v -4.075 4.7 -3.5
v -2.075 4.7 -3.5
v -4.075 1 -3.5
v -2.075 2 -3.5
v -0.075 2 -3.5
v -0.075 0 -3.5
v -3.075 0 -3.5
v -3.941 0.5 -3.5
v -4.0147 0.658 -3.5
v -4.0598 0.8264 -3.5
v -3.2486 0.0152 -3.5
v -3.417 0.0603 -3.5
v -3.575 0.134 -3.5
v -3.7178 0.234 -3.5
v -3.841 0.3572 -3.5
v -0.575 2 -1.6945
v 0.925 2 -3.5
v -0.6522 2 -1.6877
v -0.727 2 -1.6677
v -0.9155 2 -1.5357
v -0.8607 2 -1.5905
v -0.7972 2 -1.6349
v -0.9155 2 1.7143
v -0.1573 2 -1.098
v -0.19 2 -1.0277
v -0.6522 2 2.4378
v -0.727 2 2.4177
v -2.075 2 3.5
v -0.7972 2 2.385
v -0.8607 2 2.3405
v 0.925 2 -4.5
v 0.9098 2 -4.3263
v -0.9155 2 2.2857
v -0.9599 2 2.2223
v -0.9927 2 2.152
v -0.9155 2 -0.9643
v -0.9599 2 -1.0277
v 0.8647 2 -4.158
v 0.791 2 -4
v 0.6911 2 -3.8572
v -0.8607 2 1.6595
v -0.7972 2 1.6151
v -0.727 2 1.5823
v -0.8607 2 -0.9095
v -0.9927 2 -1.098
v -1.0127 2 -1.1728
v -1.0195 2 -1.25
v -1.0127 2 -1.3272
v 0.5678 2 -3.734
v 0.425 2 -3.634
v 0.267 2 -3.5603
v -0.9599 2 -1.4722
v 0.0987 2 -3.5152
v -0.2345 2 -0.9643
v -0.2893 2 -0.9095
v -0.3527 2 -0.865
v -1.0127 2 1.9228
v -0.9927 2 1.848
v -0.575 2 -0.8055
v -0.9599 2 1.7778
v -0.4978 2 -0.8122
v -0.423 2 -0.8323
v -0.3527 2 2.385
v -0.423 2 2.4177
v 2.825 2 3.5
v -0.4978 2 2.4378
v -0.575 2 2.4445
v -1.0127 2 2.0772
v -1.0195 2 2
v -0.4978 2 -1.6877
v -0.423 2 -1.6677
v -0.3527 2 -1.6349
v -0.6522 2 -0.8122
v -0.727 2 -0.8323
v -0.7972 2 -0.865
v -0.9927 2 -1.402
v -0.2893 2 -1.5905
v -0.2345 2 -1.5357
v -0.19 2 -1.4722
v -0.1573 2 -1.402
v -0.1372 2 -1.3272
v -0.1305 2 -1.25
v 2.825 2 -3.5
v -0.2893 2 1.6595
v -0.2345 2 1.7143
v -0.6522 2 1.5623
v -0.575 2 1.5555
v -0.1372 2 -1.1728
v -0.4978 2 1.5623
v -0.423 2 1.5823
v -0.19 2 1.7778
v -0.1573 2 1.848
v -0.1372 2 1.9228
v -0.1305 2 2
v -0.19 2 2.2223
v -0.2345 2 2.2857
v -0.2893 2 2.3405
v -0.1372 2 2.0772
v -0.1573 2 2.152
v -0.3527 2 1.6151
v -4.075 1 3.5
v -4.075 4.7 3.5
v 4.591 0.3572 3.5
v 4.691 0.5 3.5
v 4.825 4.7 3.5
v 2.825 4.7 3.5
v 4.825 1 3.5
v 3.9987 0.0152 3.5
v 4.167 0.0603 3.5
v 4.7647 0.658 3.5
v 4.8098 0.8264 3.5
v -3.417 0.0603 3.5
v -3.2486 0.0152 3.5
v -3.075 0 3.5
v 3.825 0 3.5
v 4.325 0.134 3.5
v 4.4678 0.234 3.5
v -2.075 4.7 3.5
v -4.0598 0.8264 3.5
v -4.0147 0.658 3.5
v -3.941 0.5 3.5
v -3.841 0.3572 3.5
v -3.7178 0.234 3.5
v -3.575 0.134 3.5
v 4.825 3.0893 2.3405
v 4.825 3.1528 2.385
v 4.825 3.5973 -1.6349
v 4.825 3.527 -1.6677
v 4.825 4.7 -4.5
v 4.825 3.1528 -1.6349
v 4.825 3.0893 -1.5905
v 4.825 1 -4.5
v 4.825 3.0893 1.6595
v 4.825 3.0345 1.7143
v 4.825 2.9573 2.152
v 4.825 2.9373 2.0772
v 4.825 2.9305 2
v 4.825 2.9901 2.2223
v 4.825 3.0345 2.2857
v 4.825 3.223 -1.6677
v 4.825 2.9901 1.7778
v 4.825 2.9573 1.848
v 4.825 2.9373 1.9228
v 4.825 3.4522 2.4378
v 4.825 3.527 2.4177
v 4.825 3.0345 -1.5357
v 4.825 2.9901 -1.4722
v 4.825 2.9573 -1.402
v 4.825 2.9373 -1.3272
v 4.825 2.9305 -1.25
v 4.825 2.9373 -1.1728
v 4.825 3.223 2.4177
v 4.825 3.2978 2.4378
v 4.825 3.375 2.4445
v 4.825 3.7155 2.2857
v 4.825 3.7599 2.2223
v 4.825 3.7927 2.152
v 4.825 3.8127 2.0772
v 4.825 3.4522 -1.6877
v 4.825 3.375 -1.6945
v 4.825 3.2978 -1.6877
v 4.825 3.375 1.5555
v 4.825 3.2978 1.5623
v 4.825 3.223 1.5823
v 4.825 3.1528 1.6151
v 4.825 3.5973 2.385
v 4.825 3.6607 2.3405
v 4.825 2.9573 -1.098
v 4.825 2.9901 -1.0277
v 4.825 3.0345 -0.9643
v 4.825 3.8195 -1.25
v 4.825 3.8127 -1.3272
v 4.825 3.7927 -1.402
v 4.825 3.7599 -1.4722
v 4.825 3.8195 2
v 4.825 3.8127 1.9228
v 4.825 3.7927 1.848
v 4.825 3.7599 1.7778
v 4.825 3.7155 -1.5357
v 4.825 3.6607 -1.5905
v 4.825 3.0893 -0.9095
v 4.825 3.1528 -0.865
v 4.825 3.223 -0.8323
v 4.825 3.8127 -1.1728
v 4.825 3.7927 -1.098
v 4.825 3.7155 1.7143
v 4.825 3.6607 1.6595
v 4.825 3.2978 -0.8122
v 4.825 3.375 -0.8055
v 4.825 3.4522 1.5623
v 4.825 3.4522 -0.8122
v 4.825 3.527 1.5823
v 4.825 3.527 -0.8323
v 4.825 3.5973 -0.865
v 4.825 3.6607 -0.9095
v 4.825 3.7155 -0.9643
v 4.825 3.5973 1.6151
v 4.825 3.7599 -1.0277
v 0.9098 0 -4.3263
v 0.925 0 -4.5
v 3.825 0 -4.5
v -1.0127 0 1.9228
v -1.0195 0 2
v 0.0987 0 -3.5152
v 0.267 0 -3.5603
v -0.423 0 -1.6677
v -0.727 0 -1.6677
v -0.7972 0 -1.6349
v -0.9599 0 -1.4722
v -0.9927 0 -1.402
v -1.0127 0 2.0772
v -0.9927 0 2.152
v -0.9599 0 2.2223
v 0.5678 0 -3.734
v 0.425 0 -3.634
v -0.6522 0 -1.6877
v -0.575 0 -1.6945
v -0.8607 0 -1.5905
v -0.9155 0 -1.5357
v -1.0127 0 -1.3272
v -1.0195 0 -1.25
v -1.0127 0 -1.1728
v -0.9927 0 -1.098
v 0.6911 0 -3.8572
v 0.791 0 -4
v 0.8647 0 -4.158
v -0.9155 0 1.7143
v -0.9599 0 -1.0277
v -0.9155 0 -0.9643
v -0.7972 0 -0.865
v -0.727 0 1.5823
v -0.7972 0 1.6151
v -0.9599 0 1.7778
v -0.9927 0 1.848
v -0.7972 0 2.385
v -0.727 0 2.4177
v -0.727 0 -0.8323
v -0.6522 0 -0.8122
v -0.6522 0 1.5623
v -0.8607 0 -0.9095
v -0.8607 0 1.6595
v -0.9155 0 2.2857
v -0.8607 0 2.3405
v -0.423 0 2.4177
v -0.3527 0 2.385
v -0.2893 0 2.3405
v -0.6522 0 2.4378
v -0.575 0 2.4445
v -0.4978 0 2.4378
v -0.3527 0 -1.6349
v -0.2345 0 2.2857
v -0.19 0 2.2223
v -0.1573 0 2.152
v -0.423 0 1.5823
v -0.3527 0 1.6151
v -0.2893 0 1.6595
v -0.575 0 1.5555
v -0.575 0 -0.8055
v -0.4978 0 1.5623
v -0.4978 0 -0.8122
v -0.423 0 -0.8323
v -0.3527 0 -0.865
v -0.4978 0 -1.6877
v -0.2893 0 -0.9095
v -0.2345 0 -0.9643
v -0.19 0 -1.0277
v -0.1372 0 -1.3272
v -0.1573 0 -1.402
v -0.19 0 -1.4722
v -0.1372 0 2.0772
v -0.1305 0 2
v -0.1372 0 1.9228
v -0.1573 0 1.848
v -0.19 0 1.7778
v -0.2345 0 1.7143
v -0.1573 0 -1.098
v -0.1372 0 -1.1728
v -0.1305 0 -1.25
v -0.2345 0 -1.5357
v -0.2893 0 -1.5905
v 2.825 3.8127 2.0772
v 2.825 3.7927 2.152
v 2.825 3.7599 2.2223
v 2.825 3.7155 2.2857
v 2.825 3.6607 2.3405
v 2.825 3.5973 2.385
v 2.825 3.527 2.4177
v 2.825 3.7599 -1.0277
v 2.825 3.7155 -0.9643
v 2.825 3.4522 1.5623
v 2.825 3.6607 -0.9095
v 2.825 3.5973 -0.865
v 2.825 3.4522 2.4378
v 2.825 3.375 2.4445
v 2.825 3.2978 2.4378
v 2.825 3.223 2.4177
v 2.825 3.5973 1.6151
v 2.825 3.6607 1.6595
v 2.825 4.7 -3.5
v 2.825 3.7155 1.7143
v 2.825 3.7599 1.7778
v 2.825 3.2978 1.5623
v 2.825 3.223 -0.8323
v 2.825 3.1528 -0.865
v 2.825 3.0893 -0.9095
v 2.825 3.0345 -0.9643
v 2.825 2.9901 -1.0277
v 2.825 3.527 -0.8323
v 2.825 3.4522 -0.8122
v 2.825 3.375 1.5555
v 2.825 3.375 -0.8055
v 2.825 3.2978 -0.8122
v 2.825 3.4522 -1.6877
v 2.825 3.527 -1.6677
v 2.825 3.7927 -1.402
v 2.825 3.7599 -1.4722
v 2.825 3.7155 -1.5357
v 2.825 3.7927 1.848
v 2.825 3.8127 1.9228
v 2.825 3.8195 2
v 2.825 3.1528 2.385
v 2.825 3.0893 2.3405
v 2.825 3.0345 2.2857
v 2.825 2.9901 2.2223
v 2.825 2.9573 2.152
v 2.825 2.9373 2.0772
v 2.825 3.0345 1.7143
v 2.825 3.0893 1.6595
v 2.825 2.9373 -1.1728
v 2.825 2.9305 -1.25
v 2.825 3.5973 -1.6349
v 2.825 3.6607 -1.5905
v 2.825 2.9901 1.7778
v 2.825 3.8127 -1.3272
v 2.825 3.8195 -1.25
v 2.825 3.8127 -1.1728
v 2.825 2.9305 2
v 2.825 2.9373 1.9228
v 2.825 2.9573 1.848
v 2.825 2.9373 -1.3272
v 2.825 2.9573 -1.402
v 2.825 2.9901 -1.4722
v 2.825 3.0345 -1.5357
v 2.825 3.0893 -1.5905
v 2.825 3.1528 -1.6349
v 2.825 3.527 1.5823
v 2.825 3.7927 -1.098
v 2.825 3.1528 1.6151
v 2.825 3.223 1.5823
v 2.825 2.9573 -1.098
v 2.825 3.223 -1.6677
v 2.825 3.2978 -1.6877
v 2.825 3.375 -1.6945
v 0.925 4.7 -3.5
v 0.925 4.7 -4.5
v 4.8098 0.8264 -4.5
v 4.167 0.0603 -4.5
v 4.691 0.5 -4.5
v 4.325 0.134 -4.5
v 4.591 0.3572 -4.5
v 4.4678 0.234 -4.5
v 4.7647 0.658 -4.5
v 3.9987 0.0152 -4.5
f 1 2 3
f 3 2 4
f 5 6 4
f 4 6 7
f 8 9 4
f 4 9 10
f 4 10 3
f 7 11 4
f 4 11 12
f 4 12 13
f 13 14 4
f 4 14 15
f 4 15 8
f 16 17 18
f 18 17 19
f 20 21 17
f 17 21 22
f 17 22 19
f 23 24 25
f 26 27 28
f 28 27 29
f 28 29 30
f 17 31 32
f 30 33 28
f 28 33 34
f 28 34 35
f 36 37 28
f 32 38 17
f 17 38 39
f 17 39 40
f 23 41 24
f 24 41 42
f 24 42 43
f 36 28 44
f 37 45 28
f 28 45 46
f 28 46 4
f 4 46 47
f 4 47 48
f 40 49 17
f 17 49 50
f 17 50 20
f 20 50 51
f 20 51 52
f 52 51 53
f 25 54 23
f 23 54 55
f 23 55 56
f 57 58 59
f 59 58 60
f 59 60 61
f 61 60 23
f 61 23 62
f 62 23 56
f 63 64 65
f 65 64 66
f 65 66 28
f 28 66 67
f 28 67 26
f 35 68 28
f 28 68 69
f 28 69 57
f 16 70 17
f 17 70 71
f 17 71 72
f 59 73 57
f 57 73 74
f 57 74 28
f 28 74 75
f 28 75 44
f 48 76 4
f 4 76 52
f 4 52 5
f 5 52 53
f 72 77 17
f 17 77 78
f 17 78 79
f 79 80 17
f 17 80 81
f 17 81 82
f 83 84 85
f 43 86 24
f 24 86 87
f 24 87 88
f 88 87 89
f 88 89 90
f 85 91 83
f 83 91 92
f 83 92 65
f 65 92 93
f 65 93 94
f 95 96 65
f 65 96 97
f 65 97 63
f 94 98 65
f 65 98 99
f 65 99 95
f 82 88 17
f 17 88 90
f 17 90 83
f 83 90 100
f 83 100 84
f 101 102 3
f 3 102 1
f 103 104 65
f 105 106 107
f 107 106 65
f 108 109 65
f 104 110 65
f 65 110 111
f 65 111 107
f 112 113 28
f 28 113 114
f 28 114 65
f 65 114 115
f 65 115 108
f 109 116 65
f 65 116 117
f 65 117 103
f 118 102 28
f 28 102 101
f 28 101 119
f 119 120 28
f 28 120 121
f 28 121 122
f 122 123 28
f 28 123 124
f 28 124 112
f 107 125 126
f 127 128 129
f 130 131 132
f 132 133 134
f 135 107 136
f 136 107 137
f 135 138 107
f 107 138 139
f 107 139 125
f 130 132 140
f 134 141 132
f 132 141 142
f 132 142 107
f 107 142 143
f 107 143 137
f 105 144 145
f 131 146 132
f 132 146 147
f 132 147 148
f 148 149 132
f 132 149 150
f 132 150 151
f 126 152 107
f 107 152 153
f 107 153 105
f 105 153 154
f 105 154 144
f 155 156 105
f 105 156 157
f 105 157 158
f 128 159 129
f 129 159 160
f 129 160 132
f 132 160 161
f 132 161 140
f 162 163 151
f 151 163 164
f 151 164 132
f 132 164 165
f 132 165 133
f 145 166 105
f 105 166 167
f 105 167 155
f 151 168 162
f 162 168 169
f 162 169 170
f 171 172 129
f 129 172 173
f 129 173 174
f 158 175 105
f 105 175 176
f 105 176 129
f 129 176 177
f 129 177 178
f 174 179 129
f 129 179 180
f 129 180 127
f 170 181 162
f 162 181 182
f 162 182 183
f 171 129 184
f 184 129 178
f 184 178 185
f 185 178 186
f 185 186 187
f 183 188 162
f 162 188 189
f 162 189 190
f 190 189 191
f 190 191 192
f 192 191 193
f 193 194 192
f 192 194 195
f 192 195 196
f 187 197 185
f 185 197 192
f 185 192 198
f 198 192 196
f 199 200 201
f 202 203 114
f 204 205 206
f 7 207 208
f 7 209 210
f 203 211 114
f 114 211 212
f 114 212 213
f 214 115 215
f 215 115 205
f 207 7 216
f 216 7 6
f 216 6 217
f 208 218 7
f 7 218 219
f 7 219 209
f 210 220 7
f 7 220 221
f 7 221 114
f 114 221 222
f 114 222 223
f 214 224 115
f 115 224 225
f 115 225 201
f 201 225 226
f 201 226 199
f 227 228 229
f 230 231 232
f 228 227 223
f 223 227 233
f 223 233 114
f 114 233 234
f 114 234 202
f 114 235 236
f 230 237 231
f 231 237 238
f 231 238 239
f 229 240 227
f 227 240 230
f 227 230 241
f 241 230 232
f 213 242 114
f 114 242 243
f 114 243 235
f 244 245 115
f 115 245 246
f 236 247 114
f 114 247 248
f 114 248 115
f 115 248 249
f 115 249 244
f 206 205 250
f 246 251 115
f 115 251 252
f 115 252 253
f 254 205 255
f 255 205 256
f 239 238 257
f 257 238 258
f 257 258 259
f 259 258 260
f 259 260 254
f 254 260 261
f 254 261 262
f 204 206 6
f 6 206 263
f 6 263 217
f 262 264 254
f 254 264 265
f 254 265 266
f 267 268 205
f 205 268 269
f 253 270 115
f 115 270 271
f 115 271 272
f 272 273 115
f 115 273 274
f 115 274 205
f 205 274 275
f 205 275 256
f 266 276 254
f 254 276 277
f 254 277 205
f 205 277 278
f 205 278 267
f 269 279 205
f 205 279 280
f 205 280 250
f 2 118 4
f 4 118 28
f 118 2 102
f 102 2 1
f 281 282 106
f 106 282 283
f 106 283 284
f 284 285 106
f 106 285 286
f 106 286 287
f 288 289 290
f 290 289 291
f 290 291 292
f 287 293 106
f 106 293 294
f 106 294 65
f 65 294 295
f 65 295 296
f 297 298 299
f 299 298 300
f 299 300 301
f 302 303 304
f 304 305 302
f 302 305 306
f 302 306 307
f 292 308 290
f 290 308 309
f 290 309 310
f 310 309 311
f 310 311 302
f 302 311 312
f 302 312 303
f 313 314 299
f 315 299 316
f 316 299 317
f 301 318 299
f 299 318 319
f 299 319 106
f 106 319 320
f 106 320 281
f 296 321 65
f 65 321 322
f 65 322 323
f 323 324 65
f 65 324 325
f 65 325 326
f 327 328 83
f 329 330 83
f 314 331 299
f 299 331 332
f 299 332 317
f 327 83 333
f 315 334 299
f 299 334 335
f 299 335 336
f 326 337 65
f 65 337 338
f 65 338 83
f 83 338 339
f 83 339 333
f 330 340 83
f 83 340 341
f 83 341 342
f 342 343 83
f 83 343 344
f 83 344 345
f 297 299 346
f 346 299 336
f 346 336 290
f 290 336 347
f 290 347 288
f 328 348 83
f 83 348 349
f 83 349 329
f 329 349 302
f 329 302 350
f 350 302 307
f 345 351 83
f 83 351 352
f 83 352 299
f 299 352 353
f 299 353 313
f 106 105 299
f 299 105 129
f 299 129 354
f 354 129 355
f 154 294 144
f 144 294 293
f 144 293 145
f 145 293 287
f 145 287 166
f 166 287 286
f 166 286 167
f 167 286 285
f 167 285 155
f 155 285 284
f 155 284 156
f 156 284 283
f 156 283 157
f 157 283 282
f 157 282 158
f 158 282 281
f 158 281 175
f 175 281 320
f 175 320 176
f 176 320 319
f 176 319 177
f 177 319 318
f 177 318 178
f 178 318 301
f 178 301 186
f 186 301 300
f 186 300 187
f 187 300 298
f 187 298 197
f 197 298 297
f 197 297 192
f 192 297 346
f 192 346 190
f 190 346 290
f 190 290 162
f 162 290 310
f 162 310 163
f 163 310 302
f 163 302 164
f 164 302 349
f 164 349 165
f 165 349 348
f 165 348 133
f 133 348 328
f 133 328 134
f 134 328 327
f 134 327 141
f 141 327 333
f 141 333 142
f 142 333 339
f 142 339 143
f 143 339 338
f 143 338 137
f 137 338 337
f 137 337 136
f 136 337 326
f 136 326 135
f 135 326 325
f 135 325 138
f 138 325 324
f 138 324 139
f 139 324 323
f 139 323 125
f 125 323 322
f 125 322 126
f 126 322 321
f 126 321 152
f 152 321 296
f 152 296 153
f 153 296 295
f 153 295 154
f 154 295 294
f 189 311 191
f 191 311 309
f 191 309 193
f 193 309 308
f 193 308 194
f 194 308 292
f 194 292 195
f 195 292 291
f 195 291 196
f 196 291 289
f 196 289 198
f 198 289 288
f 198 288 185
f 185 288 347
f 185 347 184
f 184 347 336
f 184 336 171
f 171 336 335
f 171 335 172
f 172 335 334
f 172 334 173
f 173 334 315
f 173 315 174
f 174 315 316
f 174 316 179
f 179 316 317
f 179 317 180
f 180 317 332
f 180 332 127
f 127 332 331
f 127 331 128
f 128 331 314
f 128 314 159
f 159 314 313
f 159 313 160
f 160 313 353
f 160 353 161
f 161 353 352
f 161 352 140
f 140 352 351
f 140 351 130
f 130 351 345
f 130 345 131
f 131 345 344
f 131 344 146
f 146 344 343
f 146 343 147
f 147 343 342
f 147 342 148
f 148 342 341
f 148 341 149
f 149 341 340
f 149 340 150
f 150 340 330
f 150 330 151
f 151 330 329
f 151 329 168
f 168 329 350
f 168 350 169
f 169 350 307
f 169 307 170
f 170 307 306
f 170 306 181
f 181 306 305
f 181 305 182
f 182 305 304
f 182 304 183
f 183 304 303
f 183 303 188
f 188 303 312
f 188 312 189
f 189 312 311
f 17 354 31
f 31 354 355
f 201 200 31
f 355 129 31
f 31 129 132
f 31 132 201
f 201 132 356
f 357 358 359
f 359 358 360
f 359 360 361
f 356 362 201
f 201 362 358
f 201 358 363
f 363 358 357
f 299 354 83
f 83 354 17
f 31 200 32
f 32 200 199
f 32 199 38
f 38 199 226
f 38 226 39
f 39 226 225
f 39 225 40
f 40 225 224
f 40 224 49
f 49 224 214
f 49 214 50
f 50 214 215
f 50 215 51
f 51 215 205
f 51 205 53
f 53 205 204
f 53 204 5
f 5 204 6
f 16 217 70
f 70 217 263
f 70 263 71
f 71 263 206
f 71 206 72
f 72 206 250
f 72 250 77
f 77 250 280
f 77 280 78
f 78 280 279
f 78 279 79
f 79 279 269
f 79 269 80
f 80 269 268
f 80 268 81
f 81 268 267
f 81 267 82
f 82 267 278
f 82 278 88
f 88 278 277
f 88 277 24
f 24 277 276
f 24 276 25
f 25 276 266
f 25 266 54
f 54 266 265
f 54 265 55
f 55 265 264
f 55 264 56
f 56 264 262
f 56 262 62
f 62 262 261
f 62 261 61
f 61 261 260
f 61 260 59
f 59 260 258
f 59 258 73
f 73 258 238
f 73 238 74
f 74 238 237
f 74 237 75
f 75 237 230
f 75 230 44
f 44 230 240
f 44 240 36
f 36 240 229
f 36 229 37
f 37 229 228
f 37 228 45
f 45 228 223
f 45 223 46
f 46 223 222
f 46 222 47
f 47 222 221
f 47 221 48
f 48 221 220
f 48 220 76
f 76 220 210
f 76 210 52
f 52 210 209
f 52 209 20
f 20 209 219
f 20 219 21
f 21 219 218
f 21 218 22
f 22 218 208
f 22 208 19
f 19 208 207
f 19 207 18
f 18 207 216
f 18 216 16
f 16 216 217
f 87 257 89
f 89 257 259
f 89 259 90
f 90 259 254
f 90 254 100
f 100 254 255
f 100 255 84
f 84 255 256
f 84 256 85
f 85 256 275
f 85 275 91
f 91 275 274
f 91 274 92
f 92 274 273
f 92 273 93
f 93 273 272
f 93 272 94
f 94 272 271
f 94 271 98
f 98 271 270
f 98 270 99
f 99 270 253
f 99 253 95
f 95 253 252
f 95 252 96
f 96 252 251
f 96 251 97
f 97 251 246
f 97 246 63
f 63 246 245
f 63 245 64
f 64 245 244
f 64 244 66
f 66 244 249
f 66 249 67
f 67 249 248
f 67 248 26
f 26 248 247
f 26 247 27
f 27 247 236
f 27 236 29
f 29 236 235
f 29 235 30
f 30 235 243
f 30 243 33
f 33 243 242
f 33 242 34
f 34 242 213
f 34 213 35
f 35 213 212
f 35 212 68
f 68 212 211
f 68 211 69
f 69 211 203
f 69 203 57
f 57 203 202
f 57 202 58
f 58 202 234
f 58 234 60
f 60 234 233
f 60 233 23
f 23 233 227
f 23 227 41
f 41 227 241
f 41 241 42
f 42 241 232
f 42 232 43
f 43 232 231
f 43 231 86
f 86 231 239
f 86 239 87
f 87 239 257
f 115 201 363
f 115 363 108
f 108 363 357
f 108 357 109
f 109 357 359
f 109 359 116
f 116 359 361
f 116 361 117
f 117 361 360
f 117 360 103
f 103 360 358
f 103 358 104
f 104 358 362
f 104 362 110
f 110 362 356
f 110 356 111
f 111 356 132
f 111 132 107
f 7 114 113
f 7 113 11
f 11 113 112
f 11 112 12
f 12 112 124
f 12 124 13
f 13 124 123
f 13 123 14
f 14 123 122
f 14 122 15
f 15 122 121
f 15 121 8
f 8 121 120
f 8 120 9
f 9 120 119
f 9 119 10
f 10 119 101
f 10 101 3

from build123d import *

# Parameters (mm, degrees)
BOSS_EXTRUDE1_DEPTH = 2
SKETCH2_W           = 2
SKETCH2_H           = 7
BOSS_EXTRUDE2_DEPTH = 2.7
SKETCH3_R           = 0.4445
CUT_EXTRUDE1_DEPTH  = 10.052623929
SKETCH5_W           = 3.9
SKETCH5_H           = 4.7
BOSS_EXTRUDE3_DEPTH = 1
FILLET1_R           = 1
SKETCH6_R           = 0.4445
CUT_EXTRUDE2_DEPTH  = 9.100655838
FILLET2_R           = 1


with BuildPart() as part:
    # Sketch1 → Boss-Extrude1 (new body)
    with BuildSketch(Plane(origin=(0, 0, 0), x_dir=(1, 0, 0), z_dir=(0, 1, 0))):
        Polygon((2.075, -3.5), (2.825, -3.5), (3.825, -3.5), (4.825, -3.5), (4.825, 3.5), (3.825, 3.5), (2.825, 3.5), (2.075, 3.5), (-2.075, 3.5), (-4.075, 3.5), (-4.075, -3.5), (-2.075, -3.5), align=None)
    extrude(amount=BOSS_EXTRUDE1_DEPTH)

    # Sketch2 → Boss-Extrude2 (add)
    with BuildSketch(Plane(origin=(0, 2, 0), x_dir=(1, 0, 0), z_dir=(0, 1, 0))):
        with Locations((-3.075, 0)):
            Rectangle(SKETCH2_W, SKETCH2_H)
        with Locations((3.825, 0)):
            Rectangle(SKETCH2_W, SKETCH2_H)
    extrude(amount=BOSS_EXTRUDE2_DEPTH)

    # Sketch3 → Cut-Extrude1 (cut, through all)
    with BuildSketch(Plane.ZY.offset(-2.825)):
        with Locations((-1.25, 3.375)):
            Circle(SKETCH3_R)
        with Locations((2, 3.375)):
            Circle(SKETCH3_R)
    extrude(amount=-CUT_EXTRUDE1_DEPTH, mode=Mode.SUBTRACT)

    # Sketch5 → Boss-Extrude3 (add)
    with BuildSketch(Plane(origin=(0, 0, -3.5), x_dir=(-1, 0, 0), z_dir=(0, 0, -1))):
        with Locations((-2.875, 2.35)):
            Rectangle(SKETCH5_W, SKETCH5_H)
    extrude(amount=BOSS_EXTRUDE3_DEPTH)

    # Fillet1
    fillet1_edges = [part.edges().sort_by_distance(p)[0] for p in [
        (0.925, 1, -3.5),
    ]]
    fillet(fillet1_edges, radius=FILLET1_R - 0.0001)  # a hair under: the kernel refuses the full size

    # Sketch6 → Cut-Extrude2 (cut, through all)
    with BuildSketch(Plane.XZ):
        with Locations(Location((-0.575, 2, 0), (0, 0, 270))):
            Circle(SKETCH6_R)
        with Locations(Location((-0.575, -1.25, 0), (0, 0, 270))):
            Circle(SKETCH6_R)
    extrude(amount=-CUT_EXTRUDE2_DEPTH, mode=Mode.SUBTRACT)

    # Fillet2
    fillet2_edges = [part.edges().sort_by_distance(p)[0] for p in [
        (4.825, 0, -0.5),
        (-4.075, 0, 0),
    ]]
    fillet(fillet2_edges, radius=FILLET2_R)


solid = part.part
